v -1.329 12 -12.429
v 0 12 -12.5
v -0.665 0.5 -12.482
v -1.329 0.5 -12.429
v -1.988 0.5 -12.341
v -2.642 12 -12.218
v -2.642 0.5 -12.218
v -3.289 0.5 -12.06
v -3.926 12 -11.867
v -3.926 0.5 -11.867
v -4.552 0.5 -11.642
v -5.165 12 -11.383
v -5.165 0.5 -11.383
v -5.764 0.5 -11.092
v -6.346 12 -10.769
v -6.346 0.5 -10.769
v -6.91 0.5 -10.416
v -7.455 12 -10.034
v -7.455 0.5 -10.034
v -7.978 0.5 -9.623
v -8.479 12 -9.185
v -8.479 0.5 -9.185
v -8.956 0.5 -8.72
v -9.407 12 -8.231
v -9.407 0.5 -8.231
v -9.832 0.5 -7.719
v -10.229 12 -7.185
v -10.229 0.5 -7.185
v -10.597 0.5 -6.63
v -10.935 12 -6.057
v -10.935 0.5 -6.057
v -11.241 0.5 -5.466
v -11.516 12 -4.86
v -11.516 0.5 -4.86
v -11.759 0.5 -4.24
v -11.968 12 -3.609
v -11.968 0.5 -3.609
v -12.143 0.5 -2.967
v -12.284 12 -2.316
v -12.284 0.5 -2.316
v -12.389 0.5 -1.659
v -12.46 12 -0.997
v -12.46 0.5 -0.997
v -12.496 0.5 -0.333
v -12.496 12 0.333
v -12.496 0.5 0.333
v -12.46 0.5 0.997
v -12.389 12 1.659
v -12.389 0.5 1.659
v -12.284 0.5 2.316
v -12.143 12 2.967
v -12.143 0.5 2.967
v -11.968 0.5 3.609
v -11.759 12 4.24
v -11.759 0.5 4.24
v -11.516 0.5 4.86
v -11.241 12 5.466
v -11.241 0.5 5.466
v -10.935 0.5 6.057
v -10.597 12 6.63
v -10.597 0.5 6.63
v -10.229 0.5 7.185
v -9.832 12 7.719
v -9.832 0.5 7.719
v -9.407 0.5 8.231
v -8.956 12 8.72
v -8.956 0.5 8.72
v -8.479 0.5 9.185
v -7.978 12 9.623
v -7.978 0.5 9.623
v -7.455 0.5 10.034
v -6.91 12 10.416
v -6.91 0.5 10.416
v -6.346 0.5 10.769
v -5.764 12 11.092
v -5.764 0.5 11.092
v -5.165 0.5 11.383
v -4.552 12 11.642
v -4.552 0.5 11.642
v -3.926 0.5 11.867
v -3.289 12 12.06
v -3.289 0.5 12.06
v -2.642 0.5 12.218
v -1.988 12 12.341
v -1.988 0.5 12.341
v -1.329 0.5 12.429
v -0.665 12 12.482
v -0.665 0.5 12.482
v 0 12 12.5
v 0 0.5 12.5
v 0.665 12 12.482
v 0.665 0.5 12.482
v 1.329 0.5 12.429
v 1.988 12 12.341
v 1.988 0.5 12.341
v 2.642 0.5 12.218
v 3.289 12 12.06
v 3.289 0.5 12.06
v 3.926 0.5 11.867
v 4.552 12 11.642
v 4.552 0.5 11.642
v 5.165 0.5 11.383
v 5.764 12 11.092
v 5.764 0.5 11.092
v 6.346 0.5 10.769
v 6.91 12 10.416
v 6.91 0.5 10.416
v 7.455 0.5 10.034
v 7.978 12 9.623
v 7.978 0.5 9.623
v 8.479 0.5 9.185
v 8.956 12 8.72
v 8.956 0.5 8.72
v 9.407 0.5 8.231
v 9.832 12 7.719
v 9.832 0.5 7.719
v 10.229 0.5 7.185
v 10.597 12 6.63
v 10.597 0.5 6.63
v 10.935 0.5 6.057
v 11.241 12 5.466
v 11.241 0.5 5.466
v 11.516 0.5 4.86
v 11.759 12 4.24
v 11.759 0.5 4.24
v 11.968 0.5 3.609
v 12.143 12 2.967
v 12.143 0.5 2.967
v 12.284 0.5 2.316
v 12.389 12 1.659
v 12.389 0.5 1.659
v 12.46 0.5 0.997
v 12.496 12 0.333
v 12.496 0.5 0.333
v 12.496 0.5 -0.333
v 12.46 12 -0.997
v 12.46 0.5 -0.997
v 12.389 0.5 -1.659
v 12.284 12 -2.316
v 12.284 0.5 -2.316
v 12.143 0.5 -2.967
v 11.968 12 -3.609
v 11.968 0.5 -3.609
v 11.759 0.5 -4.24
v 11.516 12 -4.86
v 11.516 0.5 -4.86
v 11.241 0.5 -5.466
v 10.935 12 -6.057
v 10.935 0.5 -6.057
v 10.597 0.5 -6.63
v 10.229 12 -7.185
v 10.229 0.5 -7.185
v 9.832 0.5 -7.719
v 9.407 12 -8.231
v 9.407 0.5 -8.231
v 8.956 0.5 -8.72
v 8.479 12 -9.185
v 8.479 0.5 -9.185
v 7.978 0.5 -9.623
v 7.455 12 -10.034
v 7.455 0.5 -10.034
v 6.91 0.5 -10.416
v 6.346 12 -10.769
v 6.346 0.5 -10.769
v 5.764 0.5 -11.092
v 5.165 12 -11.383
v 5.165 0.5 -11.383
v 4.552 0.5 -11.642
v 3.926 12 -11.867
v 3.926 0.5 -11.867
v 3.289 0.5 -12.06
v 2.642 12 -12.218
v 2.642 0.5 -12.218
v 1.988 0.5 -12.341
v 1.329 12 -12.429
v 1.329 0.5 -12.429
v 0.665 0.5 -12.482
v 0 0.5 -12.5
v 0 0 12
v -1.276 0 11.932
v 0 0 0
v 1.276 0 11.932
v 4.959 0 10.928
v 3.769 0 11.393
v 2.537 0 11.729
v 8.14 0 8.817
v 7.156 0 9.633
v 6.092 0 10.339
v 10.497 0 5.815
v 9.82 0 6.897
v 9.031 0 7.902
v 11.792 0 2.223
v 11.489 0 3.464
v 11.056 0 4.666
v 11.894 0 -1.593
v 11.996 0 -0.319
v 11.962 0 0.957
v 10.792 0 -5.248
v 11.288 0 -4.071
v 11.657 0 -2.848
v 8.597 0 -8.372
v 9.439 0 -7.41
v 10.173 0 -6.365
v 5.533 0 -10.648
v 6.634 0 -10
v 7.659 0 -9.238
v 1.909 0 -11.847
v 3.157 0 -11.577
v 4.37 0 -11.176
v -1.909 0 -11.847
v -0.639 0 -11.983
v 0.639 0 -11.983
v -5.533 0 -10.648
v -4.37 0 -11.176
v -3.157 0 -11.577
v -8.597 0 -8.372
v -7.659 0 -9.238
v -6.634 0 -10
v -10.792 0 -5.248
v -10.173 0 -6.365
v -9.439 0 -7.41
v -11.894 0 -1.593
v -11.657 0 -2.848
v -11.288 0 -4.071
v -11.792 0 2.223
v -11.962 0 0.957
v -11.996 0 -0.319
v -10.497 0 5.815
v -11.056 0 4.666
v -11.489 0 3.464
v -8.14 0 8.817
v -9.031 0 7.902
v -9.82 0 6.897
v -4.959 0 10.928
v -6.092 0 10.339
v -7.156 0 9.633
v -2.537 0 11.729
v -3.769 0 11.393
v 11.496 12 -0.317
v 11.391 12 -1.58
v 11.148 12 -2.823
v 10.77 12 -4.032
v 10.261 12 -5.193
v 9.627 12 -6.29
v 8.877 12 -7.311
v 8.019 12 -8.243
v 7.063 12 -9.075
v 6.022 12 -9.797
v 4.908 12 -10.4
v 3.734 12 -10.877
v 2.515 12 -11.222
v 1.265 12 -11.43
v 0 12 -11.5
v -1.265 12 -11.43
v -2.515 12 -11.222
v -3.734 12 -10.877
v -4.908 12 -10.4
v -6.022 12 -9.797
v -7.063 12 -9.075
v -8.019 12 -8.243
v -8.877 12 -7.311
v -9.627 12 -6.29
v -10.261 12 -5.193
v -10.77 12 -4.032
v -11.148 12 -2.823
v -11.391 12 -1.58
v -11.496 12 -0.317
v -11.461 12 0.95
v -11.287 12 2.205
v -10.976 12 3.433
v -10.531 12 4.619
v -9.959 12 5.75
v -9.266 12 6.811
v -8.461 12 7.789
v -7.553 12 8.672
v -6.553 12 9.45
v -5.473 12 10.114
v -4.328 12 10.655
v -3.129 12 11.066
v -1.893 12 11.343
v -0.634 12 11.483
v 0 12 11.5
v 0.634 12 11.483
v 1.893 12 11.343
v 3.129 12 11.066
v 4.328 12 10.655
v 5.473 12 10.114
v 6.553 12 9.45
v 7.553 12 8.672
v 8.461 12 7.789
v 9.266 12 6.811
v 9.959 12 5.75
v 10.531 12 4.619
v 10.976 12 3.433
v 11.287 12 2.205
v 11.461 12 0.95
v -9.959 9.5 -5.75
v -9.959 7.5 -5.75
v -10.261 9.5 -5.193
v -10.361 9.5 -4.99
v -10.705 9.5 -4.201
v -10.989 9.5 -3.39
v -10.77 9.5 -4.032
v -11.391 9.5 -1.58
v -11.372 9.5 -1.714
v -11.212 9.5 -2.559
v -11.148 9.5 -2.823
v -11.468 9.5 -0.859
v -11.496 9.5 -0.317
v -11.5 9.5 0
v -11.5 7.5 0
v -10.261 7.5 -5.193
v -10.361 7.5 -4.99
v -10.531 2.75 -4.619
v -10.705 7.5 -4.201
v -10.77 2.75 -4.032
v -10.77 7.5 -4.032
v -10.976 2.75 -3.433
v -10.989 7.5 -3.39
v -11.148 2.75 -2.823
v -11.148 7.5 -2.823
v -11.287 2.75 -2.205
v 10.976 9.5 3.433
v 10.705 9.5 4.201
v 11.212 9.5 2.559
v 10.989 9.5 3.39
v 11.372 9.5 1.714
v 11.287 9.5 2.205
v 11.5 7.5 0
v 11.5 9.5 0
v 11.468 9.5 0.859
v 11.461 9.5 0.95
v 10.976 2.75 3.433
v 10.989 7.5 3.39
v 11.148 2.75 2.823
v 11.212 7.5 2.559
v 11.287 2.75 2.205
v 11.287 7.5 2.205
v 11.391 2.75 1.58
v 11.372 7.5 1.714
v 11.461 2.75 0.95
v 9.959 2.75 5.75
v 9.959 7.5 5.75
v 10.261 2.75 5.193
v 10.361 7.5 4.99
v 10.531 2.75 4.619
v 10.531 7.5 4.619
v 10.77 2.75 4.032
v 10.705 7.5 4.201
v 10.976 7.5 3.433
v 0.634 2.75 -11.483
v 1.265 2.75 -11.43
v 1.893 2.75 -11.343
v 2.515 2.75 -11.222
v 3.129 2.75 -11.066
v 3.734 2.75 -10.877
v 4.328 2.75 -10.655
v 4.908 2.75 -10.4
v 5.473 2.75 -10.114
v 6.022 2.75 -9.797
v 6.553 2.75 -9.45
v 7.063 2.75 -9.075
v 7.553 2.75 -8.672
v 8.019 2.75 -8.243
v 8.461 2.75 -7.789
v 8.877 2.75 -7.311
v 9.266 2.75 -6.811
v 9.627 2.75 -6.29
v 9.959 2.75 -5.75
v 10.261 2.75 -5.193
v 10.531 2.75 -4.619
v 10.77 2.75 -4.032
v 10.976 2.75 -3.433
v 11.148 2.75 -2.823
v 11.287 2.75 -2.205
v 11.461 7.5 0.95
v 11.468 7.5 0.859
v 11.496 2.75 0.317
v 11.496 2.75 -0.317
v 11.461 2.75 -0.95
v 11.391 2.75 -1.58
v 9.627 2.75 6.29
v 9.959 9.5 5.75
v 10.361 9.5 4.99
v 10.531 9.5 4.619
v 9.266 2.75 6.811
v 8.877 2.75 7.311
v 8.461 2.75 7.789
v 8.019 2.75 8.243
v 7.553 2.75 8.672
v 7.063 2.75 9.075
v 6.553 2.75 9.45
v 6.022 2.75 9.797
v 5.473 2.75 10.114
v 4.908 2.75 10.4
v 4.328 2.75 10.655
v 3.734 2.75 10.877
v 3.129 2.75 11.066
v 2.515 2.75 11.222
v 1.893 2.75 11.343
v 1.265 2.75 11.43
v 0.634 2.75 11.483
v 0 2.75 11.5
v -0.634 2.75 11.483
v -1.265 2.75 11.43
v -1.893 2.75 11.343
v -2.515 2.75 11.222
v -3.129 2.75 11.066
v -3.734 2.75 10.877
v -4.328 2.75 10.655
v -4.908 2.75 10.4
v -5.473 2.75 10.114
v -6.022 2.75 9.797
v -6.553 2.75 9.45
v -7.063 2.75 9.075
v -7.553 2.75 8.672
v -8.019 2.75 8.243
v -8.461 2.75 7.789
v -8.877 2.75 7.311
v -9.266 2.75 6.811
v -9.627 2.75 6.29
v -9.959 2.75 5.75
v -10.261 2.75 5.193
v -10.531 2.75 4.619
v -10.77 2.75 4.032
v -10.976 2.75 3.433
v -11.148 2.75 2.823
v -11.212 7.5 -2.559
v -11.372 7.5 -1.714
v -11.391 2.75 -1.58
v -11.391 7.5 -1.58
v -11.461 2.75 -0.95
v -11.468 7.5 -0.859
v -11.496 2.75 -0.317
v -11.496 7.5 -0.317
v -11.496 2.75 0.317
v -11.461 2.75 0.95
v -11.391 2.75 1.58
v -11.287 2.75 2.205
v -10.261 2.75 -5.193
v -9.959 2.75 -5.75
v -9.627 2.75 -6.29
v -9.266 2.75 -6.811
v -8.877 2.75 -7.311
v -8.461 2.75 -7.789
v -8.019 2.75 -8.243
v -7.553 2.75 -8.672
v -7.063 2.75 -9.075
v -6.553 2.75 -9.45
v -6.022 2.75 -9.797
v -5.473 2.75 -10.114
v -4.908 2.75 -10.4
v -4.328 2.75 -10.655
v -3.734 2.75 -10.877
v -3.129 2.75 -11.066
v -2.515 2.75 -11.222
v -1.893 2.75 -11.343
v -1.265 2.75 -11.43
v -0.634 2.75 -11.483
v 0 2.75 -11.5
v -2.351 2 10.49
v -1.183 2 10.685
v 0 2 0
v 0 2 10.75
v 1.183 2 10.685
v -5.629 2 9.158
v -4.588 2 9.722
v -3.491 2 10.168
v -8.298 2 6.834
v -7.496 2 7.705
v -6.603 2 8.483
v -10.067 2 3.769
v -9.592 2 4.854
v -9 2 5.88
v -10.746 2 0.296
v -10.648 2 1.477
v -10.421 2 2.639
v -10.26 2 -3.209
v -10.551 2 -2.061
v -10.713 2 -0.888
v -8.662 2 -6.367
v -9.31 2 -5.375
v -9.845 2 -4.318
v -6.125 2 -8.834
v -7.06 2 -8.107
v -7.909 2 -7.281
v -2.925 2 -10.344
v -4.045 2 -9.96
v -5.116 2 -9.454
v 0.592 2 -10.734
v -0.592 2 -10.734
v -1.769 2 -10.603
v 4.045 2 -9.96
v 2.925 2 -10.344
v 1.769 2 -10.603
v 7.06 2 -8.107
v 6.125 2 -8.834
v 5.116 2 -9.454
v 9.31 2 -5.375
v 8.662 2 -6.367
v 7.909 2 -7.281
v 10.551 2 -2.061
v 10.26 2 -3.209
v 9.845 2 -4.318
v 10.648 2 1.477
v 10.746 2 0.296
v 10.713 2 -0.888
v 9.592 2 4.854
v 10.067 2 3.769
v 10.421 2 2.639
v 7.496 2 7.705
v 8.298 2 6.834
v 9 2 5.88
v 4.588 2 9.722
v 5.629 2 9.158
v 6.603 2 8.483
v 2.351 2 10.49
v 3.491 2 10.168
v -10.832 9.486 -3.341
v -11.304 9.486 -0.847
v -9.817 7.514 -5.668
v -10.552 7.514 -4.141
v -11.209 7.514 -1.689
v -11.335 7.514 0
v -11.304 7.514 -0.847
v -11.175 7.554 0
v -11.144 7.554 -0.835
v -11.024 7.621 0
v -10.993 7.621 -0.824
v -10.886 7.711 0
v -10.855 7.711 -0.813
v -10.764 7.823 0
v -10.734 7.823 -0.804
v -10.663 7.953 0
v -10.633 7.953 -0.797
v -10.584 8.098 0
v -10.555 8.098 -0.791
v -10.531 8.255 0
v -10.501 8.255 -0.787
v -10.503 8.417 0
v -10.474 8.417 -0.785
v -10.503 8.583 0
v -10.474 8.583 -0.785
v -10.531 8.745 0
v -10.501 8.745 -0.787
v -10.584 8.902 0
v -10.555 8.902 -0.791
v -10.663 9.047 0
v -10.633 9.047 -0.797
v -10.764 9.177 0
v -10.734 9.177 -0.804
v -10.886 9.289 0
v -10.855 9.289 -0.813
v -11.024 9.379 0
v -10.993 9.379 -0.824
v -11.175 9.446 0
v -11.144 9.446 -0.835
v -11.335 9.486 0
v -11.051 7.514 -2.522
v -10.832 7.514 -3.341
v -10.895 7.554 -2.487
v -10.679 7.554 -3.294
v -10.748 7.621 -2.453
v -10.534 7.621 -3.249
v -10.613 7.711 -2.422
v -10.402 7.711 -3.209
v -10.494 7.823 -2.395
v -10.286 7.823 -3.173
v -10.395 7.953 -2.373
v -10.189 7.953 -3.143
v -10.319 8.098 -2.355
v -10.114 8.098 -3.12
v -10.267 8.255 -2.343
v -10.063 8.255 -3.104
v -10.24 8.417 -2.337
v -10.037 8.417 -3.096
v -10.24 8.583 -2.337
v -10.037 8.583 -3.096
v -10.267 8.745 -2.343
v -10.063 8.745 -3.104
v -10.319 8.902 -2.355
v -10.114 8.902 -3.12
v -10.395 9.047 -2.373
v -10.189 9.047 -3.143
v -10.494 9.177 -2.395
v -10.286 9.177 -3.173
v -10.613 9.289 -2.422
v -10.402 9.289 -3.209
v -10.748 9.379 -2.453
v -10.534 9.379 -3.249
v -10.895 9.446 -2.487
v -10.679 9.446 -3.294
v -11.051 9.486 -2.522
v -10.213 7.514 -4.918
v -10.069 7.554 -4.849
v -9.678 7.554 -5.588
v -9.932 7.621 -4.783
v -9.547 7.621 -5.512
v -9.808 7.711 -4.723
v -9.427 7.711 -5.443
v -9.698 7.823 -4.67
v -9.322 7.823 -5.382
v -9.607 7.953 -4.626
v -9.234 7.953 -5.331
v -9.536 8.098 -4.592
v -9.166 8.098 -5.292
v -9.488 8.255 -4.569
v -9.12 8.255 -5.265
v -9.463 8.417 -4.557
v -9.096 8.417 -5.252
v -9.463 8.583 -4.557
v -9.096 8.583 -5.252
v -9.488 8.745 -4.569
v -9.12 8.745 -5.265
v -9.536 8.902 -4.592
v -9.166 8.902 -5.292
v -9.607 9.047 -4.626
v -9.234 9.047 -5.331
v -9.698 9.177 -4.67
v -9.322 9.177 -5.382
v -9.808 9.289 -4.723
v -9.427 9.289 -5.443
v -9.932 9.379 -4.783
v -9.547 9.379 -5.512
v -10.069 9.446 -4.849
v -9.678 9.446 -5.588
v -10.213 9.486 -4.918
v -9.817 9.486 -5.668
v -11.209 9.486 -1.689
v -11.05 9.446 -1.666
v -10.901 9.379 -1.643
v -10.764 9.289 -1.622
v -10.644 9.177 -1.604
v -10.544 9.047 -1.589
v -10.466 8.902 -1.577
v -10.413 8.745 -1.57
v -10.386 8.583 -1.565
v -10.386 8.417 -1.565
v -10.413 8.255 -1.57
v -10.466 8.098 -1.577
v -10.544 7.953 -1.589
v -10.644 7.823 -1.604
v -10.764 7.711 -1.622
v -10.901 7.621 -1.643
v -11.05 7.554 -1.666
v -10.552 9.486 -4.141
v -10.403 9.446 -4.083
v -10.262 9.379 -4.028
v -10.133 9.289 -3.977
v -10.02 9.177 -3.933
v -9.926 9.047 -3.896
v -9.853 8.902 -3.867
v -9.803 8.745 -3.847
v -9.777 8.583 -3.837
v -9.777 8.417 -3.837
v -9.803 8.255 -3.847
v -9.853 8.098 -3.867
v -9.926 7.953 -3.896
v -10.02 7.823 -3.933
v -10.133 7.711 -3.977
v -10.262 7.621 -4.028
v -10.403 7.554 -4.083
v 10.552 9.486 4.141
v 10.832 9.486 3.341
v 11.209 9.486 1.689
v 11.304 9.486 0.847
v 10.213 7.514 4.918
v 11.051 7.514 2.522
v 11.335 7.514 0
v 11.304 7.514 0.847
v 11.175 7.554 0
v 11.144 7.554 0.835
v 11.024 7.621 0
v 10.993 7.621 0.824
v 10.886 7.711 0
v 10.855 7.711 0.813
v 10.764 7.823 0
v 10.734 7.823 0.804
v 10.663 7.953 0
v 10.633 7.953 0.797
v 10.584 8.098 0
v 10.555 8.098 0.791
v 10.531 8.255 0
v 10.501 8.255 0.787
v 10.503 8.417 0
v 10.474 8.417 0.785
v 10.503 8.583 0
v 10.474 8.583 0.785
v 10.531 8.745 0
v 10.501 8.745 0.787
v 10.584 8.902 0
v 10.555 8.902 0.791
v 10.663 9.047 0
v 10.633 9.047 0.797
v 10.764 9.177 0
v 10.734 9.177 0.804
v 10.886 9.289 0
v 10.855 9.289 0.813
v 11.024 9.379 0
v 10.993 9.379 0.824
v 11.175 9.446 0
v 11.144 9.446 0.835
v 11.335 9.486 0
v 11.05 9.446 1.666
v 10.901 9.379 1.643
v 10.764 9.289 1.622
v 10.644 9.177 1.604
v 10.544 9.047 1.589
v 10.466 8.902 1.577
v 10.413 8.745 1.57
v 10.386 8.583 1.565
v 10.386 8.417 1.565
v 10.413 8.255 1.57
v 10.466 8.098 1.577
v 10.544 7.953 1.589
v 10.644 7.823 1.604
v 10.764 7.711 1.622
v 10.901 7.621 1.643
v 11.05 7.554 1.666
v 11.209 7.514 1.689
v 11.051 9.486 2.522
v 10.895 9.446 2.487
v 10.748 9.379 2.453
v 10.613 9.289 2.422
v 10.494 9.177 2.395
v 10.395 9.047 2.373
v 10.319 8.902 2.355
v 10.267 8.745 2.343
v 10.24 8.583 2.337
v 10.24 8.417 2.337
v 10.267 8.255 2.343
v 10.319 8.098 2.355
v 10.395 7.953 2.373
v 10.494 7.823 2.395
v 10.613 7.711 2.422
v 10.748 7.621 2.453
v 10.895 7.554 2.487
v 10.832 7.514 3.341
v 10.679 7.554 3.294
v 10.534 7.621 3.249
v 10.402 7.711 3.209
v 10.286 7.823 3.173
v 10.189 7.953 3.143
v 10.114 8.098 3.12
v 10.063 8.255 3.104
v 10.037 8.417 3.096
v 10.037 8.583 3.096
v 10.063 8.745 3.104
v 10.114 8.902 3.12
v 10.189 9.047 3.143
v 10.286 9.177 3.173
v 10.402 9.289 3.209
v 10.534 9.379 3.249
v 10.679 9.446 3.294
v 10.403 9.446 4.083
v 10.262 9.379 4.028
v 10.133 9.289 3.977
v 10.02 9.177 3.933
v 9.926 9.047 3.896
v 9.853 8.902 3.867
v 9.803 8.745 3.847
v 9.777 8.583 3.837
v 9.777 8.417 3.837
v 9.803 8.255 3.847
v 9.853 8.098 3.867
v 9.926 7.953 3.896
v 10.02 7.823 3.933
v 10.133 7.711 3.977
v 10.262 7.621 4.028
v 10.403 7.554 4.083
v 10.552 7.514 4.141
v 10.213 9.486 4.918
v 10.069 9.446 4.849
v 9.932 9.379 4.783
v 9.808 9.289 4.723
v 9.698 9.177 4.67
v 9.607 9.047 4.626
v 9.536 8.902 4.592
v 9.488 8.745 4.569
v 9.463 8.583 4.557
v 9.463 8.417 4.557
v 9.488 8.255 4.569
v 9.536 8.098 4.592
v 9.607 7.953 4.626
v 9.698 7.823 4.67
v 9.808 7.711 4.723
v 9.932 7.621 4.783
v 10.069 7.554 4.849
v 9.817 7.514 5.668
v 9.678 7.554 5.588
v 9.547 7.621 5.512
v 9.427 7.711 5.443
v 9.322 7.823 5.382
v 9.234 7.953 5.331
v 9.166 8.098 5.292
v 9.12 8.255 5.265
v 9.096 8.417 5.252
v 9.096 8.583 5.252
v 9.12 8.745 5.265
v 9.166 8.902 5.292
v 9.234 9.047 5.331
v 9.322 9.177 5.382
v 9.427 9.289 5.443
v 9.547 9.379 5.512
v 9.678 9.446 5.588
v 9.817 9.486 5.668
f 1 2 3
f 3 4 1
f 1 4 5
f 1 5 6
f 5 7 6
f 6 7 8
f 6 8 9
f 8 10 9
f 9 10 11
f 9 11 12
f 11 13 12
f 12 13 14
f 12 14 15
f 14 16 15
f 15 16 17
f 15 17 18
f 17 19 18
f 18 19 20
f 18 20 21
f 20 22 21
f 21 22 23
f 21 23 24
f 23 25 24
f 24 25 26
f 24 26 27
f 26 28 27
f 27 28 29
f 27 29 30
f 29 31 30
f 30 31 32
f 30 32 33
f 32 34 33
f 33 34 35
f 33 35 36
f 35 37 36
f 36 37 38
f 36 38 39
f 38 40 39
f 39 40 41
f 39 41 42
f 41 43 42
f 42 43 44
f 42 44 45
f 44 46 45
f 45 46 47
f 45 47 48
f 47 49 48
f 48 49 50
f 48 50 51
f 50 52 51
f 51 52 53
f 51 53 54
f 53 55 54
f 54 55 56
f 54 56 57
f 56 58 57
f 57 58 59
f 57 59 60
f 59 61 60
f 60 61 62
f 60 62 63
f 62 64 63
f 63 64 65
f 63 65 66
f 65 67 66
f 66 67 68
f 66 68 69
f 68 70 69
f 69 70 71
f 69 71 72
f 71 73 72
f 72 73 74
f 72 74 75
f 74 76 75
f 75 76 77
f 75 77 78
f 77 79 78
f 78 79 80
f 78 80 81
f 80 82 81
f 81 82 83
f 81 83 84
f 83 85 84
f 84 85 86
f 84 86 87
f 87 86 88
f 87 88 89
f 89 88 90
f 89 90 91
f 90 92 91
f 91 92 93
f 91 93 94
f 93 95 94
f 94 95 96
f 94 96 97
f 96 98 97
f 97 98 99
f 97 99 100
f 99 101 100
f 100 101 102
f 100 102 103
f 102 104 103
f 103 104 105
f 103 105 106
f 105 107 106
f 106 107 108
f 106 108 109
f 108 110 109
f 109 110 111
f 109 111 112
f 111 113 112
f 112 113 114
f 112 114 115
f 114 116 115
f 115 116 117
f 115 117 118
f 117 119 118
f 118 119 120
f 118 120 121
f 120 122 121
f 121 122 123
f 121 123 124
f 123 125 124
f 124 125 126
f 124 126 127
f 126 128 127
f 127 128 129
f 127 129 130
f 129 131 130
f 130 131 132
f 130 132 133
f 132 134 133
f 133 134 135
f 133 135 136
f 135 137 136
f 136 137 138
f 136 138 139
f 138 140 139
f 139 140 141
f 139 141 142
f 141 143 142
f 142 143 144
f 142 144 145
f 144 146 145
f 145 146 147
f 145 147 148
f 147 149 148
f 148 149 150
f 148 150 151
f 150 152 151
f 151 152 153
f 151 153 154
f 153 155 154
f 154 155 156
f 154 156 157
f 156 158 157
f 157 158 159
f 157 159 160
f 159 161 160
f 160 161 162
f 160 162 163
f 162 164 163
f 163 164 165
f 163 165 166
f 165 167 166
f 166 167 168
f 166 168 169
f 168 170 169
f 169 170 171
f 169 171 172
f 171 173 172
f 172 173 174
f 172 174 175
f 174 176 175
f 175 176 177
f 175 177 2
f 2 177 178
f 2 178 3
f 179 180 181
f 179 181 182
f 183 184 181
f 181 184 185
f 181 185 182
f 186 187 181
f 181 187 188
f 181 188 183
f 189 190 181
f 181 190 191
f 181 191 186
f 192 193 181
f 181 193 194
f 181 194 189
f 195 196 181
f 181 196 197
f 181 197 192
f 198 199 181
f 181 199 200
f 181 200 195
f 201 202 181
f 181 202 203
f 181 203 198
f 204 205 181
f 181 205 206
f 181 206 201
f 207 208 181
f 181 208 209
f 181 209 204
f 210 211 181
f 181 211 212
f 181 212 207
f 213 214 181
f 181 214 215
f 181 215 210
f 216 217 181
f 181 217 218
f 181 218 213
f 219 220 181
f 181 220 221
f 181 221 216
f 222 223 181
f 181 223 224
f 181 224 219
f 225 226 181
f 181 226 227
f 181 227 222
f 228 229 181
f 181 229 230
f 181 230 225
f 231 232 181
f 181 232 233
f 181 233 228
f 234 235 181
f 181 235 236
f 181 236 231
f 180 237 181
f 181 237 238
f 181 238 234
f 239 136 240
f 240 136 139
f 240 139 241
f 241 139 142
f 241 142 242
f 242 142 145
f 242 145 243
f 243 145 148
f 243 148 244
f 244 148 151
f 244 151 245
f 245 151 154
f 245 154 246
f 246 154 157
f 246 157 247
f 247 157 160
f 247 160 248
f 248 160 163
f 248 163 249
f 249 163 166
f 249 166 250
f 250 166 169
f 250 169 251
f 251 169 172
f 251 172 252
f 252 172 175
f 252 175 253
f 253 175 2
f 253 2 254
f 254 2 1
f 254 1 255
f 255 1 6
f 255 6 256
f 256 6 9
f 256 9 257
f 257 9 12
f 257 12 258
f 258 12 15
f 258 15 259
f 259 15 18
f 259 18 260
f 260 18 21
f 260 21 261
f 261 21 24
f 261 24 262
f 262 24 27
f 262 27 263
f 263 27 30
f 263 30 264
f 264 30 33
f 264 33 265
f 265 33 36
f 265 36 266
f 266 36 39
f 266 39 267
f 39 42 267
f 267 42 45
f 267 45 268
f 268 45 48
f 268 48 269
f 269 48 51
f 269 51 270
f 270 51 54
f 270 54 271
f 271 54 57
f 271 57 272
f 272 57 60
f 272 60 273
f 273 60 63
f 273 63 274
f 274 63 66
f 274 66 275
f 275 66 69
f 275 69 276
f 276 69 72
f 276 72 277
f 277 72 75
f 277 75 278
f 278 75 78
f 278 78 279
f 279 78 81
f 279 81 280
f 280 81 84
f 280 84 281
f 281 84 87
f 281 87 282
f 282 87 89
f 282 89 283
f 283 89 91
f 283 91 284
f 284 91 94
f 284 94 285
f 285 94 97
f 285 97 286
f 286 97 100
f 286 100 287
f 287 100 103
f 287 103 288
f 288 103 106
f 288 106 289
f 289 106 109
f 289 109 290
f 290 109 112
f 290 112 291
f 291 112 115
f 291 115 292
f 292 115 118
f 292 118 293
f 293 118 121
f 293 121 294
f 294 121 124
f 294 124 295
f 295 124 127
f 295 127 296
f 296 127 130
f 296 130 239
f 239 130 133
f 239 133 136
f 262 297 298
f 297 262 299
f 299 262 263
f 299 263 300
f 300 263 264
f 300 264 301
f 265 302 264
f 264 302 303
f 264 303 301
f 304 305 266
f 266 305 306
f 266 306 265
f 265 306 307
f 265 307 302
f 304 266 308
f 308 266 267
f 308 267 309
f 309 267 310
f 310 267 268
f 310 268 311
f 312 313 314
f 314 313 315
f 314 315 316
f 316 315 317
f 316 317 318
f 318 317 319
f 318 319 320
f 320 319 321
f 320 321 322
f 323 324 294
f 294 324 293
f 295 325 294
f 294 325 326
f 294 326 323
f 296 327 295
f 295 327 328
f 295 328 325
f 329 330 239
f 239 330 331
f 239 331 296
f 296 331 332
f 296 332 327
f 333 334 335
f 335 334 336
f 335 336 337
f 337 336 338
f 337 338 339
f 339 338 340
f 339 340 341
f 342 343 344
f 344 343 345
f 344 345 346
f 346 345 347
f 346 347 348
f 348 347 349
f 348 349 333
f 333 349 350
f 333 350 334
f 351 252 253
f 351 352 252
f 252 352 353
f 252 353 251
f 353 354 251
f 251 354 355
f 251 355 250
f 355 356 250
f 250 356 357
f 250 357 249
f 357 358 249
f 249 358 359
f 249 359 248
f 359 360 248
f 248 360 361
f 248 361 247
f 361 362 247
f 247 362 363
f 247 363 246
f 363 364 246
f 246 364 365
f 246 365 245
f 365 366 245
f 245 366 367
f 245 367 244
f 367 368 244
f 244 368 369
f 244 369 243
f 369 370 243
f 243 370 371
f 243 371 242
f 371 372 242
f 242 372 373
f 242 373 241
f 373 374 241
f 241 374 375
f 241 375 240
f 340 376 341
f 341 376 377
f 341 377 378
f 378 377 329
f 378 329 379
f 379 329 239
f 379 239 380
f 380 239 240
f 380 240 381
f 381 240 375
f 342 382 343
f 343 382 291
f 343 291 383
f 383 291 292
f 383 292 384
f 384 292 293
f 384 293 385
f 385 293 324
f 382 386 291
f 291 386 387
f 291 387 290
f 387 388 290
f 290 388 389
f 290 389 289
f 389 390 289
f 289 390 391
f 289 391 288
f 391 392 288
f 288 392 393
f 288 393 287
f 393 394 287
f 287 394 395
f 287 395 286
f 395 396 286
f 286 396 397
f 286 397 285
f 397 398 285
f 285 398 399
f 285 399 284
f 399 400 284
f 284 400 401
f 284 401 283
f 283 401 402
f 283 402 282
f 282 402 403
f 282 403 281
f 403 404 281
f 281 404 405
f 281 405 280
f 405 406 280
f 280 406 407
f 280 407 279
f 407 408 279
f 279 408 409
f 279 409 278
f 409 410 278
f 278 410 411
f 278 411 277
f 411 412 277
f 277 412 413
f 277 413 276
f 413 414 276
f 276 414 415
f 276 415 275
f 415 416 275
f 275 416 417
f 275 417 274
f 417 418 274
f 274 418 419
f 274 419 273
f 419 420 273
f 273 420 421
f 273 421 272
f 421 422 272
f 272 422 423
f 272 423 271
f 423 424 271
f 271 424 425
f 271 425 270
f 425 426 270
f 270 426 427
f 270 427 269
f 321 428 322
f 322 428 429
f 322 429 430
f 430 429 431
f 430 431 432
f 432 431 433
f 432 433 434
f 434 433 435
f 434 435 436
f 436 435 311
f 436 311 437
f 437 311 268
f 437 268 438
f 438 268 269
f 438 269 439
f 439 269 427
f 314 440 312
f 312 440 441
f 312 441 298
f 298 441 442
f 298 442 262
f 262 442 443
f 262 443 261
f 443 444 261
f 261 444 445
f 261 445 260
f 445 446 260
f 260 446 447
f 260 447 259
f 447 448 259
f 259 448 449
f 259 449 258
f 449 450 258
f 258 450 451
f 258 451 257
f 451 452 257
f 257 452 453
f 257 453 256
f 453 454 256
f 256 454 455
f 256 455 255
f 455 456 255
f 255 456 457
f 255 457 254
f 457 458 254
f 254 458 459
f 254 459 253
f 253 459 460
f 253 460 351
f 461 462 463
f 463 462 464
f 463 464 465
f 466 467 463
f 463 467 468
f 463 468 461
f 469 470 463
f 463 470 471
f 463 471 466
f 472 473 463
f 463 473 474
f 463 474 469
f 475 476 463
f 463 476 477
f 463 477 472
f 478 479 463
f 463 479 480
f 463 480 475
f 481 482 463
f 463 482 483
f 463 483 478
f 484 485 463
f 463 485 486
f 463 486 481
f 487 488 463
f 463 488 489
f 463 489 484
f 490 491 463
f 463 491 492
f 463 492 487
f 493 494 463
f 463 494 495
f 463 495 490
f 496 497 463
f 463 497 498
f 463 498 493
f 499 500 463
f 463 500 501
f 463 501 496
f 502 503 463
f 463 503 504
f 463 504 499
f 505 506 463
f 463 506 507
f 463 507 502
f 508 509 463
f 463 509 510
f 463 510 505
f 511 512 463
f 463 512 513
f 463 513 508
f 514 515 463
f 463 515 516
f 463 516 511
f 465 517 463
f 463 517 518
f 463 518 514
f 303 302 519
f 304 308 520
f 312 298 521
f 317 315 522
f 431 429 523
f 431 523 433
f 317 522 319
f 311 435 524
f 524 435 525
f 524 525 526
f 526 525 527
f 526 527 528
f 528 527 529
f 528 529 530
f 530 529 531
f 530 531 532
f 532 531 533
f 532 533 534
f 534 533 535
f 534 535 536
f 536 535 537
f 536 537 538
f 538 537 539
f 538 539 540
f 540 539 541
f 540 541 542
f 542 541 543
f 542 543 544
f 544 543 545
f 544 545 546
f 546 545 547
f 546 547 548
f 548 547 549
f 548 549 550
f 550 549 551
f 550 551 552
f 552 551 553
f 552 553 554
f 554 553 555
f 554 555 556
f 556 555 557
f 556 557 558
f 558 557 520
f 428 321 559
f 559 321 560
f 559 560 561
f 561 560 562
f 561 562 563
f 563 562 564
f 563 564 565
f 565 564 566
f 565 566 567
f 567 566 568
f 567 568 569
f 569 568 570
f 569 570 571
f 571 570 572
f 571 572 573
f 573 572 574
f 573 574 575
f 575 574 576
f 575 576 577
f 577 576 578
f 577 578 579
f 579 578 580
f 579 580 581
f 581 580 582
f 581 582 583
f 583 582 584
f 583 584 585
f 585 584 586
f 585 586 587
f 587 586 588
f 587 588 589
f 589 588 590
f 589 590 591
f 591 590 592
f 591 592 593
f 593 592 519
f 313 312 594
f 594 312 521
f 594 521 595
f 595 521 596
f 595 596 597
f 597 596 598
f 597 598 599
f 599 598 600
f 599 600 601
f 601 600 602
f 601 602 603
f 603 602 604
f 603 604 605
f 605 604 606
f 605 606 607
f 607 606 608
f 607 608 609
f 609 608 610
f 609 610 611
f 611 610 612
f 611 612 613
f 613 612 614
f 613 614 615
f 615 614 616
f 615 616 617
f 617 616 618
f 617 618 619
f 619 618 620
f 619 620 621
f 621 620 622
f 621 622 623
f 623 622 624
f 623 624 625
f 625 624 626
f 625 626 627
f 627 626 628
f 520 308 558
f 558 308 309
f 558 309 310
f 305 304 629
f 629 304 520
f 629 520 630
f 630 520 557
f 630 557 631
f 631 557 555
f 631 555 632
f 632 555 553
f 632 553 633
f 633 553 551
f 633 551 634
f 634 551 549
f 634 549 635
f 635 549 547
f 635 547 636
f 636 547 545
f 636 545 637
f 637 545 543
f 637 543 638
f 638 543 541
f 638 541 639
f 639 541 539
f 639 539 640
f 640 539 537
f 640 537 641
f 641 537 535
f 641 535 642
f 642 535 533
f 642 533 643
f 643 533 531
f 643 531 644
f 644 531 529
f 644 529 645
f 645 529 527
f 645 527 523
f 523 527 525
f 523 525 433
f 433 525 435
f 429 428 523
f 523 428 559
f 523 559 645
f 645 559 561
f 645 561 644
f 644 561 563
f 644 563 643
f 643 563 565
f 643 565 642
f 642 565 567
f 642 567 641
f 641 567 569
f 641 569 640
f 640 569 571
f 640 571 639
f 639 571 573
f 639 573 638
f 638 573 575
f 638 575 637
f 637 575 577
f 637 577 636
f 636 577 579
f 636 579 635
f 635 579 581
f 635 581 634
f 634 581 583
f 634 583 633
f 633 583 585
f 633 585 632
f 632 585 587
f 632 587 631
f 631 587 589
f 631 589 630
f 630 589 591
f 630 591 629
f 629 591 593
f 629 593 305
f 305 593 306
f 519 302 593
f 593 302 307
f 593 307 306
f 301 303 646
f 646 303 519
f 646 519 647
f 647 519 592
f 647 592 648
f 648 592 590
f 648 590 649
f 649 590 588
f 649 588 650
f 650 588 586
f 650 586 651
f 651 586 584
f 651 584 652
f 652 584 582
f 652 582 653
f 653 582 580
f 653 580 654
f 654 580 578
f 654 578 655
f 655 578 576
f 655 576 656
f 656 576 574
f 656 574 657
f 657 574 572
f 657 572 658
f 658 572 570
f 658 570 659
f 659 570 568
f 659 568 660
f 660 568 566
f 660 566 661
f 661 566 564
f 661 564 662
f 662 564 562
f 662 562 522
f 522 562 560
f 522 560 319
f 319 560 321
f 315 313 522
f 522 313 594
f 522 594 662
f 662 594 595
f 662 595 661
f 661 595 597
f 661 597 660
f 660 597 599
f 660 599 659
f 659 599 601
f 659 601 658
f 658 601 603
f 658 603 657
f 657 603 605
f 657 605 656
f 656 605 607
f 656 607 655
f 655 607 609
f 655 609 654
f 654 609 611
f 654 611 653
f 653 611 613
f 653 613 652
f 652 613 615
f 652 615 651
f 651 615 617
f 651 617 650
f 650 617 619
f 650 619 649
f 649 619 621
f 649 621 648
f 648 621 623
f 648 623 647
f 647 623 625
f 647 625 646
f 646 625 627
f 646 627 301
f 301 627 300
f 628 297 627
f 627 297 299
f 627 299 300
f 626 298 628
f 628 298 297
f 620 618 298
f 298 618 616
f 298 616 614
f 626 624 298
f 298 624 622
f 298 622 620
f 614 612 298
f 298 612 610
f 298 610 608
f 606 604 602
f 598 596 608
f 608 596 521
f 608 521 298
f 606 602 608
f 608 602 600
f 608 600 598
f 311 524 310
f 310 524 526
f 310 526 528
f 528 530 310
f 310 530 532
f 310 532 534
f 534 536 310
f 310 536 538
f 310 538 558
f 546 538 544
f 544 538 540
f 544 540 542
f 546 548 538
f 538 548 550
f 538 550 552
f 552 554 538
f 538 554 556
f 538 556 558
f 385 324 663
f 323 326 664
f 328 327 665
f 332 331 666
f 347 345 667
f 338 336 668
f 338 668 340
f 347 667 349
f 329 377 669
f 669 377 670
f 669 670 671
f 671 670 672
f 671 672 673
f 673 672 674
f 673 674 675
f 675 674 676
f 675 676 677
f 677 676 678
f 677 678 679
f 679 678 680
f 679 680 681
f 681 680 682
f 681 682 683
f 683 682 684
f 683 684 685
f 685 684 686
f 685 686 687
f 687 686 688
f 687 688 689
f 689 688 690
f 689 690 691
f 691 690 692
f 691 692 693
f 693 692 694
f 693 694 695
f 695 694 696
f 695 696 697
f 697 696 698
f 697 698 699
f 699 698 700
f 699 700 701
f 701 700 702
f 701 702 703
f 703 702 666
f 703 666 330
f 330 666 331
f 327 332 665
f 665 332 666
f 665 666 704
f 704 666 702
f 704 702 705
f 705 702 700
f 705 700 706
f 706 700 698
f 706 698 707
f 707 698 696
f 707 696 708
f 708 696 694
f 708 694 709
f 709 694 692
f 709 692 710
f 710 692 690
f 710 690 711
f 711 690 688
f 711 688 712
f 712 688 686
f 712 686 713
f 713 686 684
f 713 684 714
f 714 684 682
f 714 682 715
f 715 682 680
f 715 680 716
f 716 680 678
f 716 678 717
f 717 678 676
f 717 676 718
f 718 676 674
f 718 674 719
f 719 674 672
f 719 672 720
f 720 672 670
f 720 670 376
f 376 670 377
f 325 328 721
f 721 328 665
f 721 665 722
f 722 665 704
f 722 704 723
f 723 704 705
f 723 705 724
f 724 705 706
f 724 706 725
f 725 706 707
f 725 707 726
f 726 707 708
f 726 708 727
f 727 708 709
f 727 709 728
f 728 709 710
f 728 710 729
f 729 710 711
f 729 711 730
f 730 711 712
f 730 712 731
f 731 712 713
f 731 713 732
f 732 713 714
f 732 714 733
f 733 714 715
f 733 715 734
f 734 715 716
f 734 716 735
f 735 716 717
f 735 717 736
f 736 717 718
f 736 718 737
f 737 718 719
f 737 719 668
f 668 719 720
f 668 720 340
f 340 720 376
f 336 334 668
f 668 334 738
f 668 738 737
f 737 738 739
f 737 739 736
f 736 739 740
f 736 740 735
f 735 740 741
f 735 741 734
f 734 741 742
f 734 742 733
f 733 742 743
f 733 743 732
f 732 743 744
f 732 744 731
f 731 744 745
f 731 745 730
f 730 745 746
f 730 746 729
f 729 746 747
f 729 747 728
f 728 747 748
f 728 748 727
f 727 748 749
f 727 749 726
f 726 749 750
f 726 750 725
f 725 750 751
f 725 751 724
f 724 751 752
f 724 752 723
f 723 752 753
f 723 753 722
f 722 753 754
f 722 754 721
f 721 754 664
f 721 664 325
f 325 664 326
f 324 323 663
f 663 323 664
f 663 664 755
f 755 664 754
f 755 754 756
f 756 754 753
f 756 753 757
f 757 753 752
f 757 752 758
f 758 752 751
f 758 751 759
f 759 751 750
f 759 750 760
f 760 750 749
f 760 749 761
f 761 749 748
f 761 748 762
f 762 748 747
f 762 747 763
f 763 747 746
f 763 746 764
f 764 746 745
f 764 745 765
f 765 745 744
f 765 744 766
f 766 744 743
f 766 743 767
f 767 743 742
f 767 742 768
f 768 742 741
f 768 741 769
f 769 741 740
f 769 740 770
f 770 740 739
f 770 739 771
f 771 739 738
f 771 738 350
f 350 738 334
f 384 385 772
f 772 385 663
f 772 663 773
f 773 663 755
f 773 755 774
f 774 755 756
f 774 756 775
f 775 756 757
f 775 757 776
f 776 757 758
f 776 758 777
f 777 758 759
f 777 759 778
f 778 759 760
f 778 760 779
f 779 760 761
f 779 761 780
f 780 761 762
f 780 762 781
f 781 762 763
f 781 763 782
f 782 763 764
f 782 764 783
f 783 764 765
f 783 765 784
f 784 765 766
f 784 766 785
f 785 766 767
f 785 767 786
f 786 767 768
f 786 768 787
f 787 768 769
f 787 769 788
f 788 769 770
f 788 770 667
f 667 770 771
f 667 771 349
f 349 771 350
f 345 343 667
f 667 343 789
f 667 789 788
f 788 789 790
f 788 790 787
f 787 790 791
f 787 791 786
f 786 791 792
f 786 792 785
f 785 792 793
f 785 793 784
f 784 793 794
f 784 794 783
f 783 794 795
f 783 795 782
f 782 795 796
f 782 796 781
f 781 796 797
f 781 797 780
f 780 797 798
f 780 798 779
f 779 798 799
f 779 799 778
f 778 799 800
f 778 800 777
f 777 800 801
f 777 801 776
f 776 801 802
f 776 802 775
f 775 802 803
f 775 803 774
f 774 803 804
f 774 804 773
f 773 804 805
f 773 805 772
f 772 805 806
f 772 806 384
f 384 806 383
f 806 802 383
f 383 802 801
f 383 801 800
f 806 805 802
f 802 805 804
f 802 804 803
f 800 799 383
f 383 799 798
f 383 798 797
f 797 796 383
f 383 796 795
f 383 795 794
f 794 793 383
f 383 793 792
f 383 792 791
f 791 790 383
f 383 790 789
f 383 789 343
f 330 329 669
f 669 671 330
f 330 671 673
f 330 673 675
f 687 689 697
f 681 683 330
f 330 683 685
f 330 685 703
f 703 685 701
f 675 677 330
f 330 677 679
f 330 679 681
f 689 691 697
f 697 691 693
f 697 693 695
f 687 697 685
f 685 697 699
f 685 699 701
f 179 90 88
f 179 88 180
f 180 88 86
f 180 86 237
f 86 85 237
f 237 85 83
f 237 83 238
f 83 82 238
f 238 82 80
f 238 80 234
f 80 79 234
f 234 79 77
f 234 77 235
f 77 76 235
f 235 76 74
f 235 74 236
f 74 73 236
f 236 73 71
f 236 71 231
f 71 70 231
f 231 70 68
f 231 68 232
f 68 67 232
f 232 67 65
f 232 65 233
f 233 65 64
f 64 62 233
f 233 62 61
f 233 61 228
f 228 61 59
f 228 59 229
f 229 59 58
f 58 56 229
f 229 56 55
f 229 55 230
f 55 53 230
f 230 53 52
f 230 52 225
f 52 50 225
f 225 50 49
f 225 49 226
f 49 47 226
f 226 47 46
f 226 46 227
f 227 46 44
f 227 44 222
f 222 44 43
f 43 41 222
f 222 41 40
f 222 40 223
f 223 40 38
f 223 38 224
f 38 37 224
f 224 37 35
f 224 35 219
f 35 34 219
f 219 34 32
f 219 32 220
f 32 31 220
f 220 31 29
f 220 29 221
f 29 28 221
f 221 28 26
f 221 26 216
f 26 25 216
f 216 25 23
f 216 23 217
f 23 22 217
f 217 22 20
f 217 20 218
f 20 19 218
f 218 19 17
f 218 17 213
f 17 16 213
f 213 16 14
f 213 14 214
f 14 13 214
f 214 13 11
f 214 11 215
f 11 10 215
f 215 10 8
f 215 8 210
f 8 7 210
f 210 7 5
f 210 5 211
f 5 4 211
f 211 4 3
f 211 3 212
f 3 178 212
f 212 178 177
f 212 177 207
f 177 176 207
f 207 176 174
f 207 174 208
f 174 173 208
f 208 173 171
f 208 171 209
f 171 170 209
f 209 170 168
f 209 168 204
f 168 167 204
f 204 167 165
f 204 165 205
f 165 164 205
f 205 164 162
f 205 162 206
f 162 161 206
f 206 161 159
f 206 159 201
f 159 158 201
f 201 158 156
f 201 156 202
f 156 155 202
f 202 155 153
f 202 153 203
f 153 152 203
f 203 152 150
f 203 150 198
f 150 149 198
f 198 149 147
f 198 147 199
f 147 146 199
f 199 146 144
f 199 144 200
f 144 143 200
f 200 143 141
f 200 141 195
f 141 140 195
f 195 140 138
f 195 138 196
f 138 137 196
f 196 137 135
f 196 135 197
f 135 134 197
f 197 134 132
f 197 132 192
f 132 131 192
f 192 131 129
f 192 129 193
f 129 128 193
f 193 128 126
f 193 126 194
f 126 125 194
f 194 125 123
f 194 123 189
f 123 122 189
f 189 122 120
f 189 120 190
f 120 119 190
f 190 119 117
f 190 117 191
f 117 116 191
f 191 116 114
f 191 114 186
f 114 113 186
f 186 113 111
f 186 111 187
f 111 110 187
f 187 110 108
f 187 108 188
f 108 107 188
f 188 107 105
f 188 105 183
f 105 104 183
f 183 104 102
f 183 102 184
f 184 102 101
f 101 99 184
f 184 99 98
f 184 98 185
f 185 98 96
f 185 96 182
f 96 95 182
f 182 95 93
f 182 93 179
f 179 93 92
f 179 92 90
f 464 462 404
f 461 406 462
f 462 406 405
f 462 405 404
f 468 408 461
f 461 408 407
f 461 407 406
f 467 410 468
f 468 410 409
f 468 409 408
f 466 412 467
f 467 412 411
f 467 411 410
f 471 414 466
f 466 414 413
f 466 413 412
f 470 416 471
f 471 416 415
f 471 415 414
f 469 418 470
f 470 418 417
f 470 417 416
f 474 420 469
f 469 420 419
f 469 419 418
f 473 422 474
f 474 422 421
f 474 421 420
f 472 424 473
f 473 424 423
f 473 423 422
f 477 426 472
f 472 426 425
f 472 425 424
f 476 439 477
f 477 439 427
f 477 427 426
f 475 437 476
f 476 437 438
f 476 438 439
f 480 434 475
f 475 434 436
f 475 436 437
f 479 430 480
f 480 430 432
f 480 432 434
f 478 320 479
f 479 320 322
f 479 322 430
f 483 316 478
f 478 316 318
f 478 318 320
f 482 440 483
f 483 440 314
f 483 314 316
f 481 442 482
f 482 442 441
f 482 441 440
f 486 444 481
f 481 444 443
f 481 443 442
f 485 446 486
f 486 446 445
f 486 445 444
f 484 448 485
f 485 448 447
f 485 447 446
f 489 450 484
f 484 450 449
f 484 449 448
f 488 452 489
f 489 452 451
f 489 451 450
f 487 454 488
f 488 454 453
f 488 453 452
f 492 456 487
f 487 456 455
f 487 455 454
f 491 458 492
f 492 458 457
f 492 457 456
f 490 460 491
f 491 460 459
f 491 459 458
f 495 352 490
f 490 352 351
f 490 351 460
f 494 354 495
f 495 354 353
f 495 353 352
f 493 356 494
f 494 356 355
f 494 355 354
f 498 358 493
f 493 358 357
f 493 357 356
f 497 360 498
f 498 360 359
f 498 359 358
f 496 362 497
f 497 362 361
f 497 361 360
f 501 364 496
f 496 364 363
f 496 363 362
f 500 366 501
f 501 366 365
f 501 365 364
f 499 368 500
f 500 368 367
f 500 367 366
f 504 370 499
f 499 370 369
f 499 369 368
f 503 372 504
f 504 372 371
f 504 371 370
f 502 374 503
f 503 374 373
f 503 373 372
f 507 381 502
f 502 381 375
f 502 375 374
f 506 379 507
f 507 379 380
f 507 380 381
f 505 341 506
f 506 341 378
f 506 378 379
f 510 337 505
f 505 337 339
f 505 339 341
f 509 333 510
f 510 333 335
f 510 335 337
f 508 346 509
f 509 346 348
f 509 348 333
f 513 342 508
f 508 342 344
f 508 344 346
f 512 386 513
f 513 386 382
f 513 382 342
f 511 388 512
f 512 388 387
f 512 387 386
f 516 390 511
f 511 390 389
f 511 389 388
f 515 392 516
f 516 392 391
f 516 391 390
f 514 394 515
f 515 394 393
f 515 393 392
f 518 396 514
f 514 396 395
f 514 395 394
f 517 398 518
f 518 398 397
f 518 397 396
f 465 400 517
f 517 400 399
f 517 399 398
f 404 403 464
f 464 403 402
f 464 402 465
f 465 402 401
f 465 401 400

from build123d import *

# Parameters (mm, degrees)
SKETCH1_R           = 12.5
BOSS_EXTRUDE2_DEPTH = 2
SKETCH2_R           = 12.5
SKETCH2_R_2         = 11.5
BOSS_EXTRUDE3_DEPTH = 10
REVOLVE1_ANGLE      = 30
CHAMFER1_SIZE       = 0.5
CHAMFER2_SIZE       = 0.75


with BuildPart() as part:
    # Sketch1 → Boss-Extrude2 (new body)
    with BuildSketch(Plane(origin=(0, 0, 0), x_dir=(1, 0, 0), z_dir=(0, 1, 0))):
        with Locations(Location((0, 0, 0), (0, 0, 270))):
            Circle(SKETCH1_R)
    extrude(amount=BOSS_EXTRUDE2_DEPTH)

    # Sketch2 → Boss-Extrude3 (add)
    with BuildSketch(Plane(origin=(0, 2, 0), x_dir=(1, 0, 0), z_dir=(0, 1, 0))):
        with Locations(Location((0, 0, 0), (0, 0, 270))):
            Circle(SKETCH2_R)
        with Locations(Location((0, 0, 0), (0, 0, 270))):
            Circle(SKETCH2_R_2, mode=Mode.SUBTRACT)
    extrude(amount=BOSS_EXTRUDE3_DEPTH)

    # Sketch3 → Revolve1 (revolve)
    with BuildSketch(Plane.XY):
        with BuildLine():
            Line((-11.5, 9.5), (-11.5, 7.5))
            ThreePointArc((-11.5, 7.5), (-10.5, 8.5), (-11.5, 9.5))
        make_face()
        with BuildLine():
            Line((11.5, 9.5), (11.5, 7.5))
            ThreePointArc((11.5, 7.5), (10.5, 8.5), (11.5, 9.5))
        make_face()
    revolve(axis=Axis((0, 19.49850662, 0), (0, -1, 0)), revolution_arc=REVOLVE1_ANGLE)

    # Chamfer1
    chamfer1_edges = [part.edges().sort_by_distance(p)[0] for p in [
        (0, 0, -12.5),
    ]]
    chamfer(chamfer1_edges, length=CHAMFER1_SIZE)

    # Chamfer2
    chamfer2_edges = [part.edges().sort_by_distance(p)[0] for p in [
        (0, 2, -11.5),
    ]]
    chamfer(chamfer2_edges, length=CHAMFER2_SIZE)


solid = part.part
